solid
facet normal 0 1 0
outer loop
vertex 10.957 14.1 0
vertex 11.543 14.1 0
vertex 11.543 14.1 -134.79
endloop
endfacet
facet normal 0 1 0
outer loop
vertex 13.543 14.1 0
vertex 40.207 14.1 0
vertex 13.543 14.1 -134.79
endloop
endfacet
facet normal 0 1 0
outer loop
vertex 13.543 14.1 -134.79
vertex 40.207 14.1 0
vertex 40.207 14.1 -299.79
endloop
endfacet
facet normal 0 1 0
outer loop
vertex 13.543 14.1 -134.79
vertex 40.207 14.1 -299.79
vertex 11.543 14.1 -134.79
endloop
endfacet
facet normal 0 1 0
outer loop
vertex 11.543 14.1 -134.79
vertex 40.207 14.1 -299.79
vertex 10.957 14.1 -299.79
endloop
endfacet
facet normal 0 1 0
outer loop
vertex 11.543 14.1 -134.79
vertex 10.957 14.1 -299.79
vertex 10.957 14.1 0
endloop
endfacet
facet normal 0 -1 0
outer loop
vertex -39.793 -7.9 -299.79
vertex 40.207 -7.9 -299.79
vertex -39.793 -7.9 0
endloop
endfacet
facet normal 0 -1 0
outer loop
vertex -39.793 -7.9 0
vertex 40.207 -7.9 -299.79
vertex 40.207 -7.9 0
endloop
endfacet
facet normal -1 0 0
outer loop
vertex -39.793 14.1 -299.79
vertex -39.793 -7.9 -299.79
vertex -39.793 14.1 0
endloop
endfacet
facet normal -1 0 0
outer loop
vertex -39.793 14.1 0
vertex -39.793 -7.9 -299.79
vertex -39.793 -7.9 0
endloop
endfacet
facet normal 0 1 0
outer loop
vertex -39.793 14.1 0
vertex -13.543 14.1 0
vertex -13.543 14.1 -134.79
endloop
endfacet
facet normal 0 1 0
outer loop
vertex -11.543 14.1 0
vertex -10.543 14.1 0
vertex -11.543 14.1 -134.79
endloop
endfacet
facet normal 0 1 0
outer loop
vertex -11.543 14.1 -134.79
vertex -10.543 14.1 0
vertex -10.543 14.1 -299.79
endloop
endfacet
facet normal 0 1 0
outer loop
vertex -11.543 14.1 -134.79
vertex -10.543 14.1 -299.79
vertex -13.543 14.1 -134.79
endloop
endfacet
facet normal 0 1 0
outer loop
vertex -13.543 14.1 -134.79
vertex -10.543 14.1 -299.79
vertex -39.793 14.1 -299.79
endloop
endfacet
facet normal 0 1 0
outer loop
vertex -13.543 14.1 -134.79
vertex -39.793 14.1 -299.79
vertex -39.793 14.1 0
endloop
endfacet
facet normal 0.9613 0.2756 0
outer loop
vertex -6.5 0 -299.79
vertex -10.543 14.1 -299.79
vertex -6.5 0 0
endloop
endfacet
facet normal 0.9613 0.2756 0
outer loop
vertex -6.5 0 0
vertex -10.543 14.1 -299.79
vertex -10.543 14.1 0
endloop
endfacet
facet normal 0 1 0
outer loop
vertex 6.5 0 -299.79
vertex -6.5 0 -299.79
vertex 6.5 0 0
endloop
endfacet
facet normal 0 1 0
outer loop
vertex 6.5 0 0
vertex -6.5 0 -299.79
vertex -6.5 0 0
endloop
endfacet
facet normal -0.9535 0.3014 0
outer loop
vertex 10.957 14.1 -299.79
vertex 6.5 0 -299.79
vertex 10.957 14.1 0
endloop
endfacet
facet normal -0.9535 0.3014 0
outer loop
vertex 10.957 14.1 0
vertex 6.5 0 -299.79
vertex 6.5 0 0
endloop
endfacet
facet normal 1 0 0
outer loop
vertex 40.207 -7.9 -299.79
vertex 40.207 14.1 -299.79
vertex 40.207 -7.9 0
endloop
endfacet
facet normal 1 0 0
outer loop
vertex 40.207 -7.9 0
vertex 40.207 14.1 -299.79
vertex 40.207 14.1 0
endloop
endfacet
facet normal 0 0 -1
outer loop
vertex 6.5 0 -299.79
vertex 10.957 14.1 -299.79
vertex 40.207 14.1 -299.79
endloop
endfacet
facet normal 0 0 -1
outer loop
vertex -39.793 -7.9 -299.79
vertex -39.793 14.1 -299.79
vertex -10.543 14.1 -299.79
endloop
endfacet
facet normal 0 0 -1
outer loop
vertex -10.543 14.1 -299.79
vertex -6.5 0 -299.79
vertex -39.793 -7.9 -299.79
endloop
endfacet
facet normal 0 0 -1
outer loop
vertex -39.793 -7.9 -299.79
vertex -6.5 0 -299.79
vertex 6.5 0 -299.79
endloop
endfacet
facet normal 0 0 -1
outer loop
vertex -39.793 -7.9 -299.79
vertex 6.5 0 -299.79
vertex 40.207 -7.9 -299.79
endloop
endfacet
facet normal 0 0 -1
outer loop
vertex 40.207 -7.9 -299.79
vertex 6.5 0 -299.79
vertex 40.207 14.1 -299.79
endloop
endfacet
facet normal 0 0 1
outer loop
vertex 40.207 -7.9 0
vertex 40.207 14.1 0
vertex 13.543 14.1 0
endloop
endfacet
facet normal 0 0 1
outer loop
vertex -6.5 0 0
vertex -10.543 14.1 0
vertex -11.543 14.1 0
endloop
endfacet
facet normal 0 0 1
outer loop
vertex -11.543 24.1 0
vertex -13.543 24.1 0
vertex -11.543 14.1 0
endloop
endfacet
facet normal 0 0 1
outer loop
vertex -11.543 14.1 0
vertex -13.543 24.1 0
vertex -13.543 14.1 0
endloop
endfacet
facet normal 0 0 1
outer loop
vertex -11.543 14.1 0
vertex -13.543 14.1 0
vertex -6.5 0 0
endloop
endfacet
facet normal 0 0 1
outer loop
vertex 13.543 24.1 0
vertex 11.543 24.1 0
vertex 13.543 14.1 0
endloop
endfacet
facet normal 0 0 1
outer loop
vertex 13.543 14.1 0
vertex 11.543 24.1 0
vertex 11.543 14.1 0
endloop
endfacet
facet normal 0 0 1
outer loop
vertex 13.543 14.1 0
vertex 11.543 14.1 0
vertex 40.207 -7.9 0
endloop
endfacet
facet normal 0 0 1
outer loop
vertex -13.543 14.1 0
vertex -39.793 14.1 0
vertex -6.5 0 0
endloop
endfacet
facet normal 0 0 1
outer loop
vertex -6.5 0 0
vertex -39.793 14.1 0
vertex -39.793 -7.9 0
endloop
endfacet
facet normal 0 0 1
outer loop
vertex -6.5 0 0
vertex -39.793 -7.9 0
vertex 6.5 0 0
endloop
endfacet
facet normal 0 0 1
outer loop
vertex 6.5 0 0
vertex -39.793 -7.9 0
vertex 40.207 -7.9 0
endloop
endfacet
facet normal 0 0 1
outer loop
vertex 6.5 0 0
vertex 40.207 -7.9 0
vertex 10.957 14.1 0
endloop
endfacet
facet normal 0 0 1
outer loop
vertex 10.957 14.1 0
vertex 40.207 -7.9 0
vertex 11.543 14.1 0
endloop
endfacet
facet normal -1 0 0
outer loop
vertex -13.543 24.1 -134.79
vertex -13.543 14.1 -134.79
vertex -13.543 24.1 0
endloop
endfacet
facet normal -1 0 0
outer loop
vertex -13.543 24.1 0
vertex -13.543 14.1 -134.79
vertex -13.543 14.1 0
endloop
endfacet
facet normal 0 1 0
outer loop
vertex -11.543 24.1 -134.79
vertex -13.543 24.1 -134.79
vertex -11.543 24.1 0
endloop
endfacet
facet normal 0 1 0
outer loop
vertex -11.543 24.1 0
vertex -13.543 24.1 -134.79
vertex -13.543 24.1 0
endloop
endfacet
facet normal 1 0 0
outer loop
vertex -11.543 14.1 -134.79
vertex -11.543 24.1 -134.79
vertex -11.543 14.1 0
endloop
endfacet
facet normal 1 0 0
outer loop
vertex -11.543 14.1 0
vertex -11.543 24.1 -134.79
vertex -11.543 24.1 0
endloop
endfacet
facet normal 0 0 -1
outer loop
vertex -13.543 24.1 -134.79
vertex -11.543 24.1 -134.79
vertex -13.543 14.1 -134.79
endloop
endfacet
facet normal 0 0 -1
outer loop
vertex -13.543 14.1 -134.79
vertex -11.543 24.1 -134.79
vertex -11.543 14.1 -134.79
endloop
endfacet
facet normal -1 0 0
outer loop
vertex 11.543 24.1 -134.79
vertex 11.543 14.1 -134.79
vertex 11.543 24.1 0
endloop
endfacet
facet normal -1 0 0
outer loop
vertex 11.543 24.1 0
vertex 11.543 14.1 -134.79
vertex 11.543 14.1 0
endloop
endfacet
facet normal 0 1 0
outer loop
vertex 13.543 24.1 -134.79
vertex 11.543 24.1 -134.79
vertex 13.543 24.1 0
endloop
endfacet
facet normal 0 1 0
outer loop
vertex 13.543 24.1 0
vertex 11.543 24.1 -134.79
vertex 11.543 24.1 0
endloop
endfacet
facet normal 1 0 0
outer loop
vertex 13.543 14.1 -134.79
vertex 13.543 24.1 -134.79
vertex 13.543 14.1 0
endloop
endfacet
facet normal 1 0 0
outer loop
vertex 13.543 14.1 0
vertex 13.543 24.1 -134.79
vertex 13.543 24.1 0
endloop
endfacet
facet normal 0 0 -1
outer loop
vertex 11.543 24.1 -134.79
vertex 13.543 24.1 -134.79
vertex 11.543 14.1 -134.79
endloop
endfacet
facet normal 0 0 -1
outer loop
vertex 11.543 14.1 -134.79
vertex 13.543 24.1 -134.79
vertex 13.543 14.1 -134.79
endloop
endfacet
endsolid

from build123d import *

# Parameters (mm, degrees)
SALIENTE_EXTRUIR1_DEPTH = 299.79
CROQUIS2_W              = 2
CROQUIS2_H              = 10
SALIENTE_EXTRUIR2_DEPTH = 134.79


with BuildPart() as part:
    # Croquis1 → Saliente-Extruir1 (new body)
    with BuildSketch(Plane.XY):
        Polygon((-6.5, 0), (6.5, 0), (10.956890061, 14.1), (40.206890061, 14.1), (40.206890061, -7.9), (-39.793109939, -7.9), (-39.793109939, 14.1), (-10.543109939, 14.1), align=None)
    extrude(amount=-SALIENTE_EXTRUIR1_DEPTH)

    # Croquis2 → Saliente-Extruir2 (add)
    with BuildSketch(Plane.XY):
        with Locations((-12.543109939, 19.1)):
            Rectangle(CROQUIS2_W, CROQUIS2_H)
    saliente_extruir2 = extrude(amount=-SALIENTE_EXTRUIR2_DEPTH)

    # Simetría1: Saliente-Extruir2 across plane
    add(saliente_extruir2.mirror(Plane(origin=(0, 0, 0), x_dir=(0, 0, 1), z_dir=(1, 0, 0))))


solid = part.part
